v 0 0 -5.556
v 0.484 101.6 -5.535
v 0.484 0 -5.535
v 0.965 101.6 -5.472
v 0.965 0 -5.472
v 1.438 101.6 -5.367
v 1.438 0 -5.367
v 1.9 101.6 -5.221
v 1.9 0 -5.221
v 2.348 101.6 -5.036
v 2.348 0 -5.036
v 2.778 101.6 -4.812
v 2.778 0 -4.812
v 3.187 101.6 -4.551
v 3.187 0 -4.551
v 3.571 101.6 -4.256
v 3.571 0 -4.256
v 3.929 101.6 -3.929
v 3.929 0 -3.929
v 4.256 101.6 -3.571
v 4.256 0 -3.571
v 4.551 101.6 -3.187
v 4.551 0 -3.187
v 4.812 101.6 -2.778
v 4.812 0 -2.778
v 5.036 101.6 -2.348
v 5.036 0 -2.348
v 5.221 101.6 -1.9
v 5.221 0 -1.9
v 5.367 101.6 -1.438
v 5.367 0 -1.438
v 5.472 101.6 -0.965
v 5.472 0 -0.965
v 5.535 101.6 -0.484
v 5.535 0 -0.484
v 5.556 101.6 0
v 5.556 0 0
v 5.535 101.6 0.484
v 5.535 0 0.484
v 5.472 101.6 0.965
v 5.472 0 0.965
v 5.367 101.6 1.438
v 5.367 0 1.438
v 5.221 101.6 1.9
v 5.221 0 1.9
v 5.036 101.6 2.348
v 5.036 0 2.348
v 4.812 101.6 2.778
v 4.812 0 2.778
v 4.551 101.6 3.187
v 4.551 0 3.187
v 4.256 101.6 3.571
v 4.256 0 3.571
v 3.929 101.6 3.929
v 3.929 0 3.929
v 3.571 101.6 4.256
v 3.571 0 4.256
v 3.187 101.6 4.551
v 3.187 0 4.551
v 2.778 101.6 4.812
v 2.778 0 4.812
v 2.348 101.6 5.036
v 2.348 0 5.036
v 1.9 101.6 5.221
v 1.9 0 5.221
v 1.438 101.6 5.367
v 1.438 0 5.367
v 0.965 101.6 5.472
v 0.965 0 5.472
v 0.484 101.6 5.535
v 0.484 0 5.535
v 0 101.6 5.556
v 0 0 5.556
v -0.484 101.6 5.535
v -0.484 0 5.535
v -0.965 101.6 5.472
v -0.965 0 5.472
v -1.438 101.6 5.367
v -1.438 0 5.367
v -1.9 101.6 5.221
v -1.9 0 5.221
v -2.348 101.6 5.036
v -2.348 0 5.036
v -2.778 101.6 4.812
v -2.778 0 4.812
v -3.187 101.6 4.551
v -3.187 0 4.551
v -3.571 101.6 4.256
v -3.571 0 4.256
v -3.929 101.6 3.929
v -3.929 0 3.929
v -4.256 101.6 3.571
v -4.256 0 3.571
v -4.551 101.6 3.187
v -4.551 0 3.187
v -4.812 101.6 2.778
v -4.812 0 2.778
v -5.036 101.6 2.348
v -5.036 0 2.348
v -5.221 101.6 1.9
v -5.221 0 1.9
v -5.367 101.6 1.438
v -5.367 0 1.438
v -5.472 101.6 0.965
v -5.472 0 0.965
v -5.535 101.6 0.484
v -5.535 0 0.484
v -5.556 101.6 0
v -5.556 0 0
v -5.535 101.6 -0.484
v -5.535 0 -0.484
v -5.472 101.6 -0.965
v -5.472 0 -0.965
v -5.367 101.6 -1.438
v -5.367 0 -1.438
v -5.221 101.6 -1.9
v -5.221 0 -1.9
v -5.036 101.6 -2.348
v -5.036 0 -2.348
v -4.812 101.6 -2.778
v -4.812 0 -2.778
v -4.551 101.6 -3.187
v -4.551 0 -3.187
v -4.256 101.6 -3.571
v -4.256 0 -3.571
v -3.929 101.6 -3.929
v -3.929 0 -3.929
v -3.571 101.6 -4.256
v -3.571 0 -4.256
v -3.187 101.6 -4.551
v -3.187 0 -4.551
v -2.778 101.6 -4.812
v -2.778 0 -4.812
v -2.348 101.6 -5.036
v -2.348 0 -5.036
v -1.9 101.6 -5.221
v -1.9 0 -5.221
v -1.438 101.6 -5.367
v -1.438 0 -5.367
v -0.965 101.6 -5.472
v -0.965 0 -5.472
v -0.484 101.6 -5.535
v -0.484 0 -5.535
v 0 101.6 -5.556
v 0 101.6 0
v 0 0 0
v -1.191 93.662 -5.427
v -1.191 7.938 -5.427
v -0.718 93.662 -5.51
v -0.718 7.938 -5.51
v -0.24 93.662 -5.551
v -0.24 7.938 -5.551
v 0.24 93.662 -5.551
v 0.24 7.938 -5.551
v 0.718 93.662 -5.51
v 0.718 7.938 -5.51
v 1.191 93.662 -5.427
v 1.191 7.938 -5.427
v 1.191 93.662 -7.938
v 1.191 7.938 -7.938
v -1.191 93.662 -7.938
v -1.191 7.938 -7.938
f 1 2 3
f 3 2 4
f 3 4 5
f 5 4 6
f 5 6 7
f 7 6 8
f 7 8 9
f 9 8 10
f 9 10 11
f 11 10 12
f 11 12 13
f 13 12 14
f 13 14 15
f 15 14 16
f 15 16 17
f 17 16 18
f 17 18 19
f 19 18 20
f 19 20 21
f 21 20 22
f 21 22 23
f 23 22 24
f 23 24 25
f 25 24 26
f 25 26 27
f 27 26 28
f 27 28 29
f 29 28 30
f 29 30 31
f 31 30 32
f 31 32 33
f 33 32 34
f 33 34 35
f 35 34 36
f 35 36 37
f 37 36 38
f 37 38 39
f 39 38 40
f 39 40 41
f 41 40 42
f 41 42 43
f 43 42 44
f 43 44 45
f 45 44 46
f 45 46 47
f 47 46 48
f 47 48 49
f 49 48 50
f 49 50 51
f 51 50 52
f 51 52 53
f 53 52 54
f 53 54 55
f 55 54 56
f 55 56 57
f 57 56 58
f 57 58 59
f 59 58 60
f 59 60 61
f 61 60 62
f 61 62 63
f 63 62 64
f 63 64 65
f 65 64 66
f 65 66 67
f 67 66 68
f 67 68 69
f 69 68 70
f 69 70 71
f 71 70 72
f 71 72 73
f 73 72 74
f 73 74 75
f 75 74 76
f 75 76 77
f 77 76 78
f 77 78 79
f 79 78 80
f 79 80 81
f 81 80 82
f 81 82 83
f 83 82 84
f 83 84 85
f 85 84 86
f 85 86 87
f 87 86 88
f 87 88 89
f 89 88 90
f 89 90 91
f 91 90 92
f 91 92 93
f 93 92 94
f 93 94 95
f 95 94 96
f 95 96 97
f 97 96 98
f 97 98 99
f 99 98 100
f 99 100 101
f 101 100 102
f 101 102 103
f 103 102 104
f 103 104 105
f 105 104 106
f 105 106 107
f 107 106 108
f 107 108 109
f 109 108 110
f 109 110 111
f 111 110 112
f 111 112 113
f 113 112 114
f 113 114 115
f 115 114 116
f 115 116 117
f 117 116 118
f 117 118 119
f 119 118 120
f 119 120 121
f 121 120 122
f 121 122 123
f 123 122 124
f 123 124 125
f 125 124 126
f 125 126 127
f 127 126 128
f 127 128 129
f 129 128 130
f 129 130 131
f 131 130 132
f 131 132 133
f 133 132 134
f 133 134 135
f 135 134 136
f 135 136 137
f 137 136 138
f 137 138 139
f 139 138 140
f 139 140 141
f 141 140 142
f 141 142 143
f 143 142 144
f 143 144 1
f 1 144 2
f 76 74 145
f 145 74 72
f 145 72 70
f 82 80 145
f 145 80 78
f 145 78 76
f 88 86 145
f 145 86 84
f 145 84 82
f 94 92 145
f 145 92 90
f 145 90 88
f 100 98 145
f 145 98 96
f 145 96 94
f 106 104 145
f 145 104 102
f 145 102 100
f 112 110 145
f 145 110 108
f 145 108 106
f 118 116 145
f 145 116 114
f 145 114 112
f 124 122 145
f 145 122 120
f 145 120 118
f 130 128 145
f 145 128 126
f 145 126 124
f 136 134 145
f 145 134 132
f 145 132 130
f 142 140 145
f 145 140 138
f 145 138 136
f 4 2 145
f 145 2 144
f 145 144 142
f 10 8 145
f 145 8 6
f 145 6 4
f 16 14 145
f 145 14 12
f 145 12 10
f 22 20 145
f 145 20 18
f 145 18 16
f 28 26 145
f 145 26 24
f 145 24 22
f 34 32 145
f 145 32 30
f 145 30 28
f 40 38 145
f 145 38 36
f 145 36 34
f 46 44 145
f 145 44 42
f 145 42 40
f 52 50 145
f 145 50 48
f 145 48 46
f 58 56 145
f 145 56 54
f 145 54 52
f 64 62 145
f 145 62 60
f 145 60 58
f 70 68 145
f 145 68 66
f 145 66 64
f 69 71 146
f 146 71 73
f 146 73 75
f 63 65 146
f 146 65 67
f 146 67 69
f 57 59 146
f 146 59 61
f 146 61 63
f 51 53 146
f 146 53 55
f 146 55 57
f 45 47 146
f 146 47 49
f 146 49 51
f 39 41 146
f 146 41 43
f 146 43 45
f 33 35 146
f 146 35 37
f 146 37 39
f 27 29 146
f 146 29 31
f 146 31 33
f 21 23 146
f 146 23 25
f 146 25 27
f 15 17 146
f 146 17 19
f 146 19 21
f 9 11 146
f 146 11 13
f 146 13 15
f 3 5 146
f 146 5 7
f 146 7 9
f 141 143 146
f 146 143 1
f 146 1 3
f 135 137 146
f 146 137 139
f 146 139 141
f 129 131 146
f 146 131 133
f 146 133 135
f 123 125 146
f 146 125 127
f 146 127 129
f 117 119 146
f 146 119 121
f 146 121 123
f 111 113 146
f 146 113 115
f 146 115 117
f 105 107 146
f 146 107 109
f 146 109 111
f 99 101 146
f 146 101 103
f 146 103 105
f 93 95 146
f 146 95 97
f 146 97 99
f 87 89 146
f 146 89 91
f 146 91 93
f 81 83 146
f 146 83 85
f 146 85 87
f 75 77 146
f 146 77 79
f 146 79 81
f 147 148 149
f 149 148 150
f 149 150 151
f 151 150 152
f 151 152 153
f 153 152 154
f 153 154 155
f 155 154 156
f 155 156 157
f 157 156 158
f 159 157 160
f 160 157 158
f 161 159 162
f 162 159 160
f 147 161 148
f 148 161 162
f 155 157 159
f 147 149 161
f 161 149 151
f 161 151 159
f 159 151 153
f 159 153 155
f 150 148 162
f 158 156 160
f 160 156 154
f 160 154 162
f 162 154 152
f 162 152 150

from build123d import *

# Parameters (mm, degrees)
BOSS_EXTRUDE2_DEPTH = 101.6
BOSS_EXTRUDE3_DEPTH = 85.725
MOVE_FACE2_DEPTH    = 7.9375
MOVE_START          = 85.725
MOVE_FACE2_2_DEPTH  = 7.9375


# Read off the part's stored shape, not the designer's step: Move Face2
with BuildPart() as part:
    # Sketch2 → Boss-Extrude2 (new body)
    with BuildSketch(Plane(origin=(0, 0, 0), x_dir=(1, 0, 0), z_dir=(0, 1, 0))):
        with BuildLine():
            Line((-1.190625, -5.427184), (-1.190625, 5.427184))
            ThreePointArc((-1.190625, 5.427184), (-5.55625, 0), (-1.190625, -5.427184))
        make_face()
        with BuildLine():
            ThreePointArc((1.190625, 5.427184), (0, 5.55625), (-1.190625, 5.427184))
            Line((-1.190625, 5.427184), (-1.190625, -5.427184))
            ThreePointArc((-1.190625, -5.427184), (0, -5.55625), (1.190625, -5.427184))
            Line((1.190625, -5.427184), (1.190625, 5.427184))
        make_face()
        with BuildLine():
            ThreePointArc((5.55625, 0), (4.32939512, 3.482563991), (1.190625, 5.427184))
            Line((1.190625, 5.427184), (1.190625, -5.427184))
            ThreePointArc((1.190625, -5.427184), (4.32939512, -3.482563991), (5.55625, 0))
        make_face()
    extrude(amount=BOSS_EXTRUDE2_DEPTH)


with BuildPart() as body_2:
    # Sketch2<6> → Boss-Extrude3 (new body)
    with BuildSketch(Plane(origin=(0, 0, 0), x_dir=(1, 0, 0), z_dir=(0, 1, 0))):
        with BuildLine():
            Line((1.190625, 7.9375), (-1.190625, 7.9375))
            Line((-1.190625, 7.9375), (-1.190625, 5.427184))
            ThreePointArc((-1.190625, 5.427184), (0, 5.55625), (1.190625, 5.427184))
            Line((1.190625, 5.427184), (1.190625, 7.9375))
        make_face()
    extrude(amount=BOSS_EXTRUDE3_DEPTH)

    # Move Face2 outline → Move Face2 (cut)
    with BuildSketch(Plane(origin=(0, 0, 0), x_dir=(1, 0, 0), z_dir=(0, 1, 0))):
        with BuildLine():
            Line((-1.190625, 7.9375), (-1.190625, 5.427184))
            ThreePointArc((-1.190625, 5.427184), (0, 5.55625), (1.190625, 5.427184))
            Line((1.190625, 5.427184), (1.190625, 7.9375))
            Line((1.190625, 7.9375), (-1.190625, 7.9375))
        make_face()
    extrude(amount=MOVE_FACE2_DEPTH, mode=Mode.SUBTRACT)

    # Move Face2 2 outline → Move Face2 2 (add)
    with BuildSketch(Plane(origin=(0, 0, 0), x_dir=(1, 0, 0), z_dir=(0, 1, 0)).offset(MOVE_START)):
        with BuildLine():
            Line((-1.190625, 7.9375), (-1.190625, 5.427184))
            ThreePointArc((-1.190625, 5.427184), (0, 5.55625), (1.190625, 5.427184))
            Line((1.190625, 5.427184), (1.190625, 7.9375))
            Line((1.190625, 7.9375), (-1.190625, 7.9375))
        make_face()
    extrude(amount=MOVE_FACE2_2_DEPTH)


solid = Compound([part.part, body_2.part])
